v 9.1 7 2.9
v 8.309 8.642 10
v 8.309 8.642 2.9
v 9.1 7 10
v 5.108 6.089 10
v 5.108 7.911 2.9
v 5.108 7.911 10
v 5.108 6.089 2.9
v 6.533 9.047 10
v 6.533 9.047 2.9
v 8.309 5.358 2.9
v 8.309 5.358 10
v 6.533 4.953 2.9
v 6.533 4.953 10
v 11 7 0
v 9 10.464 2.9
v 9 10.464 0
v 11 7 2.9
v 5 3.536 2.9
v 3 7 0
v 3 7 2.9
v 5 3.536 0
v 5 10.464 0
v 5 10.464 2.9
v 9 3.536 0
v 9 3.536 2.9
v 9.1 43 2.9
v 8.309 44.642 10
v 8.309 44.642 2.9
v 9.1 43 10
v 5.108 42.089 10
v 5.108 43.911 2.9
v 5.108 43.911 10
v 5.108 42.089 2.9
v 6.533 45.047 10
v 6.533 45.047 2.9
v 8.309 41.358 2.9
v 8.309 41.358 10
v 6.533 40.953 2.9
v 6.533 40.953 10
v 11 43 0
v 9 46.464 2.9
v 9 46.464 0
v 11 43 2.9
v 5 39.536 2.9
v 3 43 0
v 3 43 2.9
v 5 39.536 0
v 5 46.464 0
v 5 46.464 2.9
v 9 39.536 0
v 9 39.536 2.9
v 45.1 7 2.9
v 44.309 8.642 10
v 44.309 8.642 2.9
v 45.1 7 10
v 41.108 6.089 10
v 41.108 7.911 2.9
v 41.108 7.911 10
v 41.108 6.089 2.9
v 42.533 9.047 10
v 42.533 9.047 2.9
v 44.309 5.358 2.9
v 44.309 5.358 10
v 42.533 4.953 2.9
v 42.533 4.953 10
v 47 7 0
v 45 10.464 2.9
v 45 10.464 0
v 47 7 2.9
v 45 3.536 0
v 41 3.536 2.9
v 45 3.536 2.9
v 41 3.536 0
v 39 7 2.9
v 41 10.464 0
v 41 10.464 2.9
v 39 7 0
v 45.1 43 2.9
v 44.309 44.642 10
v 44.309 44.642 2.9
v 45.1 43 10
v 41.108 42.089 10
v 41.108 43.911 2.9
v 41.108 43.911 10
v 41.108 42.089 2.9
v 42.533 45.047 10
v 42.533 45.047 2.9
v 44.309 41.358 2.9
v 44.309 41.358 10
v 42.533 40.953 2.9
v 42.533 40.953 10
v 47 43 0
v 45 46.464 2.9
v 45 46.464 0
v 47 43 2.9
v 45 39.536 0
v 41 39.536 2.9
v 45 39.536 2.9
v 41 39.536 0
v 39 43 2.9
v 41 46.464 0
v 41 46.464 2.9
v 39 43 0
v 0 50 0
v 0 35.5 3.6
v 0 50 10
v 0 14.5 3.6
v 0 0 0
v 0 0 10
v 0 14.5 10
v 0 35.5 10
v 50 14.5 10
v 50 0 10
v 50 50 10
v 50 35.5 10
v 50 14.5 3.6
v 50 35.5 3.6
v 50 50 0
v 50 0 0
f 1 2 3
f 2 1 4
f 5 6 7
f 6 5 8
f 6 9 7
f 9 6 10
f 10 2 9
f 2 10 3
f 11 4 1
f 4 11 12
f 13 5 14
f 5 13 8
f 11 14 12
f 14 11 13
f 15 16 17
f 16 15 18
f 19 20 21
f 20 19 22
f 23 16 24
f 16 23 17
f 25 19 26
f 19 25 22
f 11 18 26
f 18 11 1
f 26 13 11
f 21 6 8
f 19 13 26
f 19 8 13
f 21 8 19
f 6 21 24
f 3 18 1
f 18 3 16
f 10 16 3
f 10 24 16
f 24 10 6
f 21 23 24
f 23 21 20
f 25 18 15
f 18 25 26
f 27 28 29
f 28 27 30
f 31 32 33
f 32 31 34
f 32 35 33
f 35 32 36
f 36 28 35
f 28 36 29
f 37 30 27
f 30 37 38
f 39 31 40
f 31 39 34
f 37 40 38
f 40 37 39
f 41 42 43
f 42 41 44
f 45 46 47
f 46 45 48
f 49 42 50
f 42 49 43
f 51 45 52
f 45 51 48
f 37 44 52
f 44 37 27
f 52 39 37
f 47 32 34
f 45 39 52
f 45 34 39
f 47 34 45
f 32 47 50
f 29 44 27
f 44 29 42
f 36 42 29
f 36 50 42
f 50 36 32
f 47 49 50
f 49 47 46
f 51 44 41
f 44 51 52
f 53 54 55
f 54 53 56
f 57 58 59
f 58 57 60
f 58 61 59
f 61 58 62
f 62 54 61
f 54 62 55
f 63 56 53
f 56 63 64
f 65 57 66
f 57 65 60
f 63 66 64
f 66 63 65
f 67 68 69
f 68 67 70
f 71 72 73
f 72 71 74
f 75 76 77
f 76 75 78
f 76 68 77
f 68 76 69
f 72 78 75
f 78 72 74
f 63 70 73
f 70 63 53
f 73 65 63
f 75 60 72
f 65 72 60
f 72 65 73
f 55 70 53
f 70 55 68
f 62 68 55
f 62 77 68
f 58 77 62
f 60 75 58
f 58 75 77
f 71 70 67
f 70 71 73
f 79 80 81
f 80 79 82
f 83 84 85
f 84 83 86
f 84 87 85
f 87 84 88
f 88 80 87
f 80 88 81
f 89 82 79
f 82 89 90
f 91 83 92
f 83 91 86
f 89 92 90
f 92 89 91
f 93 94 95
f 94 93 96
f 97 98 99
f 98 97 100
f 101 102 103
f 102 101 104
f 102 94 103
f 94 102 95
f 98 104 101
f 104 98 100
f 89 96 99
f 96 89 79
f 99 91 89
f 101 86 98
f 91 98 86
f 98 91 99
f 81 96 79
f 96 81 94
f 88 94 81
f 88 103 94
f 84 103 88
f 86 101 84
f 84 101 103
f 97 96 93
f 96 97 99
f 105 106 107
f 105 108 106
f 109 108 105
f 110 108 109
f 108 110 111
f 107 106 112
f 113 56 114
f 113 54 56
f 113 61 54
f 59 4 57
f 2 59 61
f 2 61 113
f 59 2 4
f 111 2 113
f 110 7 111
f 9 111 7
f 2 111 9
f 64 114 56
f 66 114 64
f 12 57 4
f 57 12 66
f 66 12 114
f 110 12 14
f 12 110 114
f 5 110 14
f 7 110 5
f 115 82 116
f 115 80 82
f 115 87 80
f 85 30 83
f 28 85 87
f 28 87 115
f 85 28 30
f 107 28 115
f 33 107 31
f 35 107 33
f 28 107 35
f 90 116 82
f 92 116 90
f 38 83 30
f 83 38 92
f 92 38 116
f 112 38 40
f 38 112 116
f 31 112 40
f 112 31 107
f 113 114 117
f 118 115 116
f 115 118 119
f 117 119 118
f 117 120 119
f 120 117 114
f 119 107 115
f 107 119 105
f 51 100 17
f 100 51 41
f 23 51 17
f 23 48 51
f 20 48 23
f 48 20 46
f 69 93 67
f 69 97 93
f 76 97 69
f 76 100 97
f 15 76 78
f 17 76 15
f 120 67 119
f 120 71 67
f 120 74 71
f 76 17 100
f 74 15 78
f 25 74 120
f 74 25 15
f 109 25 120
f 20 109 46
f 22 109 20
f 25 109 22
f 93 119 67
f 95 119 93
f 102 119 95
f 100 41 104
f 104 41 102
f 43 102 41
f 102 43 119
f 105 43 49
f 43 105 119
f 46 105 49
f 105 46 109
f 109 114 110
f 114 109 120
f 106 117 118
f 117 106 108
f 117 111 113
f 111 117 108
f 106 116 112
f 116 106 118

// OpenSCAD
module doubleT( length ) {
    // a double-T profile (letter H)
    // if you see the profile as letter T (double-T) in front of you:
    dim_A1 = 2; // fatness of upper line in T
    dim_A2 = 1.25; // fatness of verical line in T
    dim_B = 8.8; // height of T
    dim_C = 20; // width of upper line in T
    
    translate( [ -dim_C/2, -dim_B/2, 0 ] ) union() {
        cube( [ dim_C, dim_A1, length ] );
        translate( [dim_C/2-dim_A2/2,0,0] ) cube( [ dim_A2, dim_B, length ] );
        translate( [0,dim_B-dim_A1,0] ) cube( [ dim_C, dim_A1, length ] );
    }
}

module plate1() {
    
    // main plate
    
    size_x = 50;
    size_y = 50;
    size_z = 10;
    screw = 4;
    
    profile_y = 20;
    profile_z = 8.8;
    
    difference() {
        // plate
        cube( [size_x,size_y,size_z] );
        // screw holes
        for( x=[7,size_x-7] )
            for( y=[7,size_y-7] ) {
                translate([x,y,size_z/2]) cylinder( r=screw/2+0.1, h=size_z+0.4,center=true );
                translate([x,y,-0.1]) cylinder( r=8/2, h=3, $fn=6 ); // hex nut
            }
        // main shaft for aluminium profile
        translate([-0.2,(size_y-profile_y-1)/2,size_z-profile_z/2-2]) cube( [size_x+0.4, profile_y+1, profile_z] );
    }
}

//translate( [0,0,40]) rotate([180,0,90]) plate1();
//translate( [0,50,25]) rotate([180,0,0]) plate1();
plate1();
